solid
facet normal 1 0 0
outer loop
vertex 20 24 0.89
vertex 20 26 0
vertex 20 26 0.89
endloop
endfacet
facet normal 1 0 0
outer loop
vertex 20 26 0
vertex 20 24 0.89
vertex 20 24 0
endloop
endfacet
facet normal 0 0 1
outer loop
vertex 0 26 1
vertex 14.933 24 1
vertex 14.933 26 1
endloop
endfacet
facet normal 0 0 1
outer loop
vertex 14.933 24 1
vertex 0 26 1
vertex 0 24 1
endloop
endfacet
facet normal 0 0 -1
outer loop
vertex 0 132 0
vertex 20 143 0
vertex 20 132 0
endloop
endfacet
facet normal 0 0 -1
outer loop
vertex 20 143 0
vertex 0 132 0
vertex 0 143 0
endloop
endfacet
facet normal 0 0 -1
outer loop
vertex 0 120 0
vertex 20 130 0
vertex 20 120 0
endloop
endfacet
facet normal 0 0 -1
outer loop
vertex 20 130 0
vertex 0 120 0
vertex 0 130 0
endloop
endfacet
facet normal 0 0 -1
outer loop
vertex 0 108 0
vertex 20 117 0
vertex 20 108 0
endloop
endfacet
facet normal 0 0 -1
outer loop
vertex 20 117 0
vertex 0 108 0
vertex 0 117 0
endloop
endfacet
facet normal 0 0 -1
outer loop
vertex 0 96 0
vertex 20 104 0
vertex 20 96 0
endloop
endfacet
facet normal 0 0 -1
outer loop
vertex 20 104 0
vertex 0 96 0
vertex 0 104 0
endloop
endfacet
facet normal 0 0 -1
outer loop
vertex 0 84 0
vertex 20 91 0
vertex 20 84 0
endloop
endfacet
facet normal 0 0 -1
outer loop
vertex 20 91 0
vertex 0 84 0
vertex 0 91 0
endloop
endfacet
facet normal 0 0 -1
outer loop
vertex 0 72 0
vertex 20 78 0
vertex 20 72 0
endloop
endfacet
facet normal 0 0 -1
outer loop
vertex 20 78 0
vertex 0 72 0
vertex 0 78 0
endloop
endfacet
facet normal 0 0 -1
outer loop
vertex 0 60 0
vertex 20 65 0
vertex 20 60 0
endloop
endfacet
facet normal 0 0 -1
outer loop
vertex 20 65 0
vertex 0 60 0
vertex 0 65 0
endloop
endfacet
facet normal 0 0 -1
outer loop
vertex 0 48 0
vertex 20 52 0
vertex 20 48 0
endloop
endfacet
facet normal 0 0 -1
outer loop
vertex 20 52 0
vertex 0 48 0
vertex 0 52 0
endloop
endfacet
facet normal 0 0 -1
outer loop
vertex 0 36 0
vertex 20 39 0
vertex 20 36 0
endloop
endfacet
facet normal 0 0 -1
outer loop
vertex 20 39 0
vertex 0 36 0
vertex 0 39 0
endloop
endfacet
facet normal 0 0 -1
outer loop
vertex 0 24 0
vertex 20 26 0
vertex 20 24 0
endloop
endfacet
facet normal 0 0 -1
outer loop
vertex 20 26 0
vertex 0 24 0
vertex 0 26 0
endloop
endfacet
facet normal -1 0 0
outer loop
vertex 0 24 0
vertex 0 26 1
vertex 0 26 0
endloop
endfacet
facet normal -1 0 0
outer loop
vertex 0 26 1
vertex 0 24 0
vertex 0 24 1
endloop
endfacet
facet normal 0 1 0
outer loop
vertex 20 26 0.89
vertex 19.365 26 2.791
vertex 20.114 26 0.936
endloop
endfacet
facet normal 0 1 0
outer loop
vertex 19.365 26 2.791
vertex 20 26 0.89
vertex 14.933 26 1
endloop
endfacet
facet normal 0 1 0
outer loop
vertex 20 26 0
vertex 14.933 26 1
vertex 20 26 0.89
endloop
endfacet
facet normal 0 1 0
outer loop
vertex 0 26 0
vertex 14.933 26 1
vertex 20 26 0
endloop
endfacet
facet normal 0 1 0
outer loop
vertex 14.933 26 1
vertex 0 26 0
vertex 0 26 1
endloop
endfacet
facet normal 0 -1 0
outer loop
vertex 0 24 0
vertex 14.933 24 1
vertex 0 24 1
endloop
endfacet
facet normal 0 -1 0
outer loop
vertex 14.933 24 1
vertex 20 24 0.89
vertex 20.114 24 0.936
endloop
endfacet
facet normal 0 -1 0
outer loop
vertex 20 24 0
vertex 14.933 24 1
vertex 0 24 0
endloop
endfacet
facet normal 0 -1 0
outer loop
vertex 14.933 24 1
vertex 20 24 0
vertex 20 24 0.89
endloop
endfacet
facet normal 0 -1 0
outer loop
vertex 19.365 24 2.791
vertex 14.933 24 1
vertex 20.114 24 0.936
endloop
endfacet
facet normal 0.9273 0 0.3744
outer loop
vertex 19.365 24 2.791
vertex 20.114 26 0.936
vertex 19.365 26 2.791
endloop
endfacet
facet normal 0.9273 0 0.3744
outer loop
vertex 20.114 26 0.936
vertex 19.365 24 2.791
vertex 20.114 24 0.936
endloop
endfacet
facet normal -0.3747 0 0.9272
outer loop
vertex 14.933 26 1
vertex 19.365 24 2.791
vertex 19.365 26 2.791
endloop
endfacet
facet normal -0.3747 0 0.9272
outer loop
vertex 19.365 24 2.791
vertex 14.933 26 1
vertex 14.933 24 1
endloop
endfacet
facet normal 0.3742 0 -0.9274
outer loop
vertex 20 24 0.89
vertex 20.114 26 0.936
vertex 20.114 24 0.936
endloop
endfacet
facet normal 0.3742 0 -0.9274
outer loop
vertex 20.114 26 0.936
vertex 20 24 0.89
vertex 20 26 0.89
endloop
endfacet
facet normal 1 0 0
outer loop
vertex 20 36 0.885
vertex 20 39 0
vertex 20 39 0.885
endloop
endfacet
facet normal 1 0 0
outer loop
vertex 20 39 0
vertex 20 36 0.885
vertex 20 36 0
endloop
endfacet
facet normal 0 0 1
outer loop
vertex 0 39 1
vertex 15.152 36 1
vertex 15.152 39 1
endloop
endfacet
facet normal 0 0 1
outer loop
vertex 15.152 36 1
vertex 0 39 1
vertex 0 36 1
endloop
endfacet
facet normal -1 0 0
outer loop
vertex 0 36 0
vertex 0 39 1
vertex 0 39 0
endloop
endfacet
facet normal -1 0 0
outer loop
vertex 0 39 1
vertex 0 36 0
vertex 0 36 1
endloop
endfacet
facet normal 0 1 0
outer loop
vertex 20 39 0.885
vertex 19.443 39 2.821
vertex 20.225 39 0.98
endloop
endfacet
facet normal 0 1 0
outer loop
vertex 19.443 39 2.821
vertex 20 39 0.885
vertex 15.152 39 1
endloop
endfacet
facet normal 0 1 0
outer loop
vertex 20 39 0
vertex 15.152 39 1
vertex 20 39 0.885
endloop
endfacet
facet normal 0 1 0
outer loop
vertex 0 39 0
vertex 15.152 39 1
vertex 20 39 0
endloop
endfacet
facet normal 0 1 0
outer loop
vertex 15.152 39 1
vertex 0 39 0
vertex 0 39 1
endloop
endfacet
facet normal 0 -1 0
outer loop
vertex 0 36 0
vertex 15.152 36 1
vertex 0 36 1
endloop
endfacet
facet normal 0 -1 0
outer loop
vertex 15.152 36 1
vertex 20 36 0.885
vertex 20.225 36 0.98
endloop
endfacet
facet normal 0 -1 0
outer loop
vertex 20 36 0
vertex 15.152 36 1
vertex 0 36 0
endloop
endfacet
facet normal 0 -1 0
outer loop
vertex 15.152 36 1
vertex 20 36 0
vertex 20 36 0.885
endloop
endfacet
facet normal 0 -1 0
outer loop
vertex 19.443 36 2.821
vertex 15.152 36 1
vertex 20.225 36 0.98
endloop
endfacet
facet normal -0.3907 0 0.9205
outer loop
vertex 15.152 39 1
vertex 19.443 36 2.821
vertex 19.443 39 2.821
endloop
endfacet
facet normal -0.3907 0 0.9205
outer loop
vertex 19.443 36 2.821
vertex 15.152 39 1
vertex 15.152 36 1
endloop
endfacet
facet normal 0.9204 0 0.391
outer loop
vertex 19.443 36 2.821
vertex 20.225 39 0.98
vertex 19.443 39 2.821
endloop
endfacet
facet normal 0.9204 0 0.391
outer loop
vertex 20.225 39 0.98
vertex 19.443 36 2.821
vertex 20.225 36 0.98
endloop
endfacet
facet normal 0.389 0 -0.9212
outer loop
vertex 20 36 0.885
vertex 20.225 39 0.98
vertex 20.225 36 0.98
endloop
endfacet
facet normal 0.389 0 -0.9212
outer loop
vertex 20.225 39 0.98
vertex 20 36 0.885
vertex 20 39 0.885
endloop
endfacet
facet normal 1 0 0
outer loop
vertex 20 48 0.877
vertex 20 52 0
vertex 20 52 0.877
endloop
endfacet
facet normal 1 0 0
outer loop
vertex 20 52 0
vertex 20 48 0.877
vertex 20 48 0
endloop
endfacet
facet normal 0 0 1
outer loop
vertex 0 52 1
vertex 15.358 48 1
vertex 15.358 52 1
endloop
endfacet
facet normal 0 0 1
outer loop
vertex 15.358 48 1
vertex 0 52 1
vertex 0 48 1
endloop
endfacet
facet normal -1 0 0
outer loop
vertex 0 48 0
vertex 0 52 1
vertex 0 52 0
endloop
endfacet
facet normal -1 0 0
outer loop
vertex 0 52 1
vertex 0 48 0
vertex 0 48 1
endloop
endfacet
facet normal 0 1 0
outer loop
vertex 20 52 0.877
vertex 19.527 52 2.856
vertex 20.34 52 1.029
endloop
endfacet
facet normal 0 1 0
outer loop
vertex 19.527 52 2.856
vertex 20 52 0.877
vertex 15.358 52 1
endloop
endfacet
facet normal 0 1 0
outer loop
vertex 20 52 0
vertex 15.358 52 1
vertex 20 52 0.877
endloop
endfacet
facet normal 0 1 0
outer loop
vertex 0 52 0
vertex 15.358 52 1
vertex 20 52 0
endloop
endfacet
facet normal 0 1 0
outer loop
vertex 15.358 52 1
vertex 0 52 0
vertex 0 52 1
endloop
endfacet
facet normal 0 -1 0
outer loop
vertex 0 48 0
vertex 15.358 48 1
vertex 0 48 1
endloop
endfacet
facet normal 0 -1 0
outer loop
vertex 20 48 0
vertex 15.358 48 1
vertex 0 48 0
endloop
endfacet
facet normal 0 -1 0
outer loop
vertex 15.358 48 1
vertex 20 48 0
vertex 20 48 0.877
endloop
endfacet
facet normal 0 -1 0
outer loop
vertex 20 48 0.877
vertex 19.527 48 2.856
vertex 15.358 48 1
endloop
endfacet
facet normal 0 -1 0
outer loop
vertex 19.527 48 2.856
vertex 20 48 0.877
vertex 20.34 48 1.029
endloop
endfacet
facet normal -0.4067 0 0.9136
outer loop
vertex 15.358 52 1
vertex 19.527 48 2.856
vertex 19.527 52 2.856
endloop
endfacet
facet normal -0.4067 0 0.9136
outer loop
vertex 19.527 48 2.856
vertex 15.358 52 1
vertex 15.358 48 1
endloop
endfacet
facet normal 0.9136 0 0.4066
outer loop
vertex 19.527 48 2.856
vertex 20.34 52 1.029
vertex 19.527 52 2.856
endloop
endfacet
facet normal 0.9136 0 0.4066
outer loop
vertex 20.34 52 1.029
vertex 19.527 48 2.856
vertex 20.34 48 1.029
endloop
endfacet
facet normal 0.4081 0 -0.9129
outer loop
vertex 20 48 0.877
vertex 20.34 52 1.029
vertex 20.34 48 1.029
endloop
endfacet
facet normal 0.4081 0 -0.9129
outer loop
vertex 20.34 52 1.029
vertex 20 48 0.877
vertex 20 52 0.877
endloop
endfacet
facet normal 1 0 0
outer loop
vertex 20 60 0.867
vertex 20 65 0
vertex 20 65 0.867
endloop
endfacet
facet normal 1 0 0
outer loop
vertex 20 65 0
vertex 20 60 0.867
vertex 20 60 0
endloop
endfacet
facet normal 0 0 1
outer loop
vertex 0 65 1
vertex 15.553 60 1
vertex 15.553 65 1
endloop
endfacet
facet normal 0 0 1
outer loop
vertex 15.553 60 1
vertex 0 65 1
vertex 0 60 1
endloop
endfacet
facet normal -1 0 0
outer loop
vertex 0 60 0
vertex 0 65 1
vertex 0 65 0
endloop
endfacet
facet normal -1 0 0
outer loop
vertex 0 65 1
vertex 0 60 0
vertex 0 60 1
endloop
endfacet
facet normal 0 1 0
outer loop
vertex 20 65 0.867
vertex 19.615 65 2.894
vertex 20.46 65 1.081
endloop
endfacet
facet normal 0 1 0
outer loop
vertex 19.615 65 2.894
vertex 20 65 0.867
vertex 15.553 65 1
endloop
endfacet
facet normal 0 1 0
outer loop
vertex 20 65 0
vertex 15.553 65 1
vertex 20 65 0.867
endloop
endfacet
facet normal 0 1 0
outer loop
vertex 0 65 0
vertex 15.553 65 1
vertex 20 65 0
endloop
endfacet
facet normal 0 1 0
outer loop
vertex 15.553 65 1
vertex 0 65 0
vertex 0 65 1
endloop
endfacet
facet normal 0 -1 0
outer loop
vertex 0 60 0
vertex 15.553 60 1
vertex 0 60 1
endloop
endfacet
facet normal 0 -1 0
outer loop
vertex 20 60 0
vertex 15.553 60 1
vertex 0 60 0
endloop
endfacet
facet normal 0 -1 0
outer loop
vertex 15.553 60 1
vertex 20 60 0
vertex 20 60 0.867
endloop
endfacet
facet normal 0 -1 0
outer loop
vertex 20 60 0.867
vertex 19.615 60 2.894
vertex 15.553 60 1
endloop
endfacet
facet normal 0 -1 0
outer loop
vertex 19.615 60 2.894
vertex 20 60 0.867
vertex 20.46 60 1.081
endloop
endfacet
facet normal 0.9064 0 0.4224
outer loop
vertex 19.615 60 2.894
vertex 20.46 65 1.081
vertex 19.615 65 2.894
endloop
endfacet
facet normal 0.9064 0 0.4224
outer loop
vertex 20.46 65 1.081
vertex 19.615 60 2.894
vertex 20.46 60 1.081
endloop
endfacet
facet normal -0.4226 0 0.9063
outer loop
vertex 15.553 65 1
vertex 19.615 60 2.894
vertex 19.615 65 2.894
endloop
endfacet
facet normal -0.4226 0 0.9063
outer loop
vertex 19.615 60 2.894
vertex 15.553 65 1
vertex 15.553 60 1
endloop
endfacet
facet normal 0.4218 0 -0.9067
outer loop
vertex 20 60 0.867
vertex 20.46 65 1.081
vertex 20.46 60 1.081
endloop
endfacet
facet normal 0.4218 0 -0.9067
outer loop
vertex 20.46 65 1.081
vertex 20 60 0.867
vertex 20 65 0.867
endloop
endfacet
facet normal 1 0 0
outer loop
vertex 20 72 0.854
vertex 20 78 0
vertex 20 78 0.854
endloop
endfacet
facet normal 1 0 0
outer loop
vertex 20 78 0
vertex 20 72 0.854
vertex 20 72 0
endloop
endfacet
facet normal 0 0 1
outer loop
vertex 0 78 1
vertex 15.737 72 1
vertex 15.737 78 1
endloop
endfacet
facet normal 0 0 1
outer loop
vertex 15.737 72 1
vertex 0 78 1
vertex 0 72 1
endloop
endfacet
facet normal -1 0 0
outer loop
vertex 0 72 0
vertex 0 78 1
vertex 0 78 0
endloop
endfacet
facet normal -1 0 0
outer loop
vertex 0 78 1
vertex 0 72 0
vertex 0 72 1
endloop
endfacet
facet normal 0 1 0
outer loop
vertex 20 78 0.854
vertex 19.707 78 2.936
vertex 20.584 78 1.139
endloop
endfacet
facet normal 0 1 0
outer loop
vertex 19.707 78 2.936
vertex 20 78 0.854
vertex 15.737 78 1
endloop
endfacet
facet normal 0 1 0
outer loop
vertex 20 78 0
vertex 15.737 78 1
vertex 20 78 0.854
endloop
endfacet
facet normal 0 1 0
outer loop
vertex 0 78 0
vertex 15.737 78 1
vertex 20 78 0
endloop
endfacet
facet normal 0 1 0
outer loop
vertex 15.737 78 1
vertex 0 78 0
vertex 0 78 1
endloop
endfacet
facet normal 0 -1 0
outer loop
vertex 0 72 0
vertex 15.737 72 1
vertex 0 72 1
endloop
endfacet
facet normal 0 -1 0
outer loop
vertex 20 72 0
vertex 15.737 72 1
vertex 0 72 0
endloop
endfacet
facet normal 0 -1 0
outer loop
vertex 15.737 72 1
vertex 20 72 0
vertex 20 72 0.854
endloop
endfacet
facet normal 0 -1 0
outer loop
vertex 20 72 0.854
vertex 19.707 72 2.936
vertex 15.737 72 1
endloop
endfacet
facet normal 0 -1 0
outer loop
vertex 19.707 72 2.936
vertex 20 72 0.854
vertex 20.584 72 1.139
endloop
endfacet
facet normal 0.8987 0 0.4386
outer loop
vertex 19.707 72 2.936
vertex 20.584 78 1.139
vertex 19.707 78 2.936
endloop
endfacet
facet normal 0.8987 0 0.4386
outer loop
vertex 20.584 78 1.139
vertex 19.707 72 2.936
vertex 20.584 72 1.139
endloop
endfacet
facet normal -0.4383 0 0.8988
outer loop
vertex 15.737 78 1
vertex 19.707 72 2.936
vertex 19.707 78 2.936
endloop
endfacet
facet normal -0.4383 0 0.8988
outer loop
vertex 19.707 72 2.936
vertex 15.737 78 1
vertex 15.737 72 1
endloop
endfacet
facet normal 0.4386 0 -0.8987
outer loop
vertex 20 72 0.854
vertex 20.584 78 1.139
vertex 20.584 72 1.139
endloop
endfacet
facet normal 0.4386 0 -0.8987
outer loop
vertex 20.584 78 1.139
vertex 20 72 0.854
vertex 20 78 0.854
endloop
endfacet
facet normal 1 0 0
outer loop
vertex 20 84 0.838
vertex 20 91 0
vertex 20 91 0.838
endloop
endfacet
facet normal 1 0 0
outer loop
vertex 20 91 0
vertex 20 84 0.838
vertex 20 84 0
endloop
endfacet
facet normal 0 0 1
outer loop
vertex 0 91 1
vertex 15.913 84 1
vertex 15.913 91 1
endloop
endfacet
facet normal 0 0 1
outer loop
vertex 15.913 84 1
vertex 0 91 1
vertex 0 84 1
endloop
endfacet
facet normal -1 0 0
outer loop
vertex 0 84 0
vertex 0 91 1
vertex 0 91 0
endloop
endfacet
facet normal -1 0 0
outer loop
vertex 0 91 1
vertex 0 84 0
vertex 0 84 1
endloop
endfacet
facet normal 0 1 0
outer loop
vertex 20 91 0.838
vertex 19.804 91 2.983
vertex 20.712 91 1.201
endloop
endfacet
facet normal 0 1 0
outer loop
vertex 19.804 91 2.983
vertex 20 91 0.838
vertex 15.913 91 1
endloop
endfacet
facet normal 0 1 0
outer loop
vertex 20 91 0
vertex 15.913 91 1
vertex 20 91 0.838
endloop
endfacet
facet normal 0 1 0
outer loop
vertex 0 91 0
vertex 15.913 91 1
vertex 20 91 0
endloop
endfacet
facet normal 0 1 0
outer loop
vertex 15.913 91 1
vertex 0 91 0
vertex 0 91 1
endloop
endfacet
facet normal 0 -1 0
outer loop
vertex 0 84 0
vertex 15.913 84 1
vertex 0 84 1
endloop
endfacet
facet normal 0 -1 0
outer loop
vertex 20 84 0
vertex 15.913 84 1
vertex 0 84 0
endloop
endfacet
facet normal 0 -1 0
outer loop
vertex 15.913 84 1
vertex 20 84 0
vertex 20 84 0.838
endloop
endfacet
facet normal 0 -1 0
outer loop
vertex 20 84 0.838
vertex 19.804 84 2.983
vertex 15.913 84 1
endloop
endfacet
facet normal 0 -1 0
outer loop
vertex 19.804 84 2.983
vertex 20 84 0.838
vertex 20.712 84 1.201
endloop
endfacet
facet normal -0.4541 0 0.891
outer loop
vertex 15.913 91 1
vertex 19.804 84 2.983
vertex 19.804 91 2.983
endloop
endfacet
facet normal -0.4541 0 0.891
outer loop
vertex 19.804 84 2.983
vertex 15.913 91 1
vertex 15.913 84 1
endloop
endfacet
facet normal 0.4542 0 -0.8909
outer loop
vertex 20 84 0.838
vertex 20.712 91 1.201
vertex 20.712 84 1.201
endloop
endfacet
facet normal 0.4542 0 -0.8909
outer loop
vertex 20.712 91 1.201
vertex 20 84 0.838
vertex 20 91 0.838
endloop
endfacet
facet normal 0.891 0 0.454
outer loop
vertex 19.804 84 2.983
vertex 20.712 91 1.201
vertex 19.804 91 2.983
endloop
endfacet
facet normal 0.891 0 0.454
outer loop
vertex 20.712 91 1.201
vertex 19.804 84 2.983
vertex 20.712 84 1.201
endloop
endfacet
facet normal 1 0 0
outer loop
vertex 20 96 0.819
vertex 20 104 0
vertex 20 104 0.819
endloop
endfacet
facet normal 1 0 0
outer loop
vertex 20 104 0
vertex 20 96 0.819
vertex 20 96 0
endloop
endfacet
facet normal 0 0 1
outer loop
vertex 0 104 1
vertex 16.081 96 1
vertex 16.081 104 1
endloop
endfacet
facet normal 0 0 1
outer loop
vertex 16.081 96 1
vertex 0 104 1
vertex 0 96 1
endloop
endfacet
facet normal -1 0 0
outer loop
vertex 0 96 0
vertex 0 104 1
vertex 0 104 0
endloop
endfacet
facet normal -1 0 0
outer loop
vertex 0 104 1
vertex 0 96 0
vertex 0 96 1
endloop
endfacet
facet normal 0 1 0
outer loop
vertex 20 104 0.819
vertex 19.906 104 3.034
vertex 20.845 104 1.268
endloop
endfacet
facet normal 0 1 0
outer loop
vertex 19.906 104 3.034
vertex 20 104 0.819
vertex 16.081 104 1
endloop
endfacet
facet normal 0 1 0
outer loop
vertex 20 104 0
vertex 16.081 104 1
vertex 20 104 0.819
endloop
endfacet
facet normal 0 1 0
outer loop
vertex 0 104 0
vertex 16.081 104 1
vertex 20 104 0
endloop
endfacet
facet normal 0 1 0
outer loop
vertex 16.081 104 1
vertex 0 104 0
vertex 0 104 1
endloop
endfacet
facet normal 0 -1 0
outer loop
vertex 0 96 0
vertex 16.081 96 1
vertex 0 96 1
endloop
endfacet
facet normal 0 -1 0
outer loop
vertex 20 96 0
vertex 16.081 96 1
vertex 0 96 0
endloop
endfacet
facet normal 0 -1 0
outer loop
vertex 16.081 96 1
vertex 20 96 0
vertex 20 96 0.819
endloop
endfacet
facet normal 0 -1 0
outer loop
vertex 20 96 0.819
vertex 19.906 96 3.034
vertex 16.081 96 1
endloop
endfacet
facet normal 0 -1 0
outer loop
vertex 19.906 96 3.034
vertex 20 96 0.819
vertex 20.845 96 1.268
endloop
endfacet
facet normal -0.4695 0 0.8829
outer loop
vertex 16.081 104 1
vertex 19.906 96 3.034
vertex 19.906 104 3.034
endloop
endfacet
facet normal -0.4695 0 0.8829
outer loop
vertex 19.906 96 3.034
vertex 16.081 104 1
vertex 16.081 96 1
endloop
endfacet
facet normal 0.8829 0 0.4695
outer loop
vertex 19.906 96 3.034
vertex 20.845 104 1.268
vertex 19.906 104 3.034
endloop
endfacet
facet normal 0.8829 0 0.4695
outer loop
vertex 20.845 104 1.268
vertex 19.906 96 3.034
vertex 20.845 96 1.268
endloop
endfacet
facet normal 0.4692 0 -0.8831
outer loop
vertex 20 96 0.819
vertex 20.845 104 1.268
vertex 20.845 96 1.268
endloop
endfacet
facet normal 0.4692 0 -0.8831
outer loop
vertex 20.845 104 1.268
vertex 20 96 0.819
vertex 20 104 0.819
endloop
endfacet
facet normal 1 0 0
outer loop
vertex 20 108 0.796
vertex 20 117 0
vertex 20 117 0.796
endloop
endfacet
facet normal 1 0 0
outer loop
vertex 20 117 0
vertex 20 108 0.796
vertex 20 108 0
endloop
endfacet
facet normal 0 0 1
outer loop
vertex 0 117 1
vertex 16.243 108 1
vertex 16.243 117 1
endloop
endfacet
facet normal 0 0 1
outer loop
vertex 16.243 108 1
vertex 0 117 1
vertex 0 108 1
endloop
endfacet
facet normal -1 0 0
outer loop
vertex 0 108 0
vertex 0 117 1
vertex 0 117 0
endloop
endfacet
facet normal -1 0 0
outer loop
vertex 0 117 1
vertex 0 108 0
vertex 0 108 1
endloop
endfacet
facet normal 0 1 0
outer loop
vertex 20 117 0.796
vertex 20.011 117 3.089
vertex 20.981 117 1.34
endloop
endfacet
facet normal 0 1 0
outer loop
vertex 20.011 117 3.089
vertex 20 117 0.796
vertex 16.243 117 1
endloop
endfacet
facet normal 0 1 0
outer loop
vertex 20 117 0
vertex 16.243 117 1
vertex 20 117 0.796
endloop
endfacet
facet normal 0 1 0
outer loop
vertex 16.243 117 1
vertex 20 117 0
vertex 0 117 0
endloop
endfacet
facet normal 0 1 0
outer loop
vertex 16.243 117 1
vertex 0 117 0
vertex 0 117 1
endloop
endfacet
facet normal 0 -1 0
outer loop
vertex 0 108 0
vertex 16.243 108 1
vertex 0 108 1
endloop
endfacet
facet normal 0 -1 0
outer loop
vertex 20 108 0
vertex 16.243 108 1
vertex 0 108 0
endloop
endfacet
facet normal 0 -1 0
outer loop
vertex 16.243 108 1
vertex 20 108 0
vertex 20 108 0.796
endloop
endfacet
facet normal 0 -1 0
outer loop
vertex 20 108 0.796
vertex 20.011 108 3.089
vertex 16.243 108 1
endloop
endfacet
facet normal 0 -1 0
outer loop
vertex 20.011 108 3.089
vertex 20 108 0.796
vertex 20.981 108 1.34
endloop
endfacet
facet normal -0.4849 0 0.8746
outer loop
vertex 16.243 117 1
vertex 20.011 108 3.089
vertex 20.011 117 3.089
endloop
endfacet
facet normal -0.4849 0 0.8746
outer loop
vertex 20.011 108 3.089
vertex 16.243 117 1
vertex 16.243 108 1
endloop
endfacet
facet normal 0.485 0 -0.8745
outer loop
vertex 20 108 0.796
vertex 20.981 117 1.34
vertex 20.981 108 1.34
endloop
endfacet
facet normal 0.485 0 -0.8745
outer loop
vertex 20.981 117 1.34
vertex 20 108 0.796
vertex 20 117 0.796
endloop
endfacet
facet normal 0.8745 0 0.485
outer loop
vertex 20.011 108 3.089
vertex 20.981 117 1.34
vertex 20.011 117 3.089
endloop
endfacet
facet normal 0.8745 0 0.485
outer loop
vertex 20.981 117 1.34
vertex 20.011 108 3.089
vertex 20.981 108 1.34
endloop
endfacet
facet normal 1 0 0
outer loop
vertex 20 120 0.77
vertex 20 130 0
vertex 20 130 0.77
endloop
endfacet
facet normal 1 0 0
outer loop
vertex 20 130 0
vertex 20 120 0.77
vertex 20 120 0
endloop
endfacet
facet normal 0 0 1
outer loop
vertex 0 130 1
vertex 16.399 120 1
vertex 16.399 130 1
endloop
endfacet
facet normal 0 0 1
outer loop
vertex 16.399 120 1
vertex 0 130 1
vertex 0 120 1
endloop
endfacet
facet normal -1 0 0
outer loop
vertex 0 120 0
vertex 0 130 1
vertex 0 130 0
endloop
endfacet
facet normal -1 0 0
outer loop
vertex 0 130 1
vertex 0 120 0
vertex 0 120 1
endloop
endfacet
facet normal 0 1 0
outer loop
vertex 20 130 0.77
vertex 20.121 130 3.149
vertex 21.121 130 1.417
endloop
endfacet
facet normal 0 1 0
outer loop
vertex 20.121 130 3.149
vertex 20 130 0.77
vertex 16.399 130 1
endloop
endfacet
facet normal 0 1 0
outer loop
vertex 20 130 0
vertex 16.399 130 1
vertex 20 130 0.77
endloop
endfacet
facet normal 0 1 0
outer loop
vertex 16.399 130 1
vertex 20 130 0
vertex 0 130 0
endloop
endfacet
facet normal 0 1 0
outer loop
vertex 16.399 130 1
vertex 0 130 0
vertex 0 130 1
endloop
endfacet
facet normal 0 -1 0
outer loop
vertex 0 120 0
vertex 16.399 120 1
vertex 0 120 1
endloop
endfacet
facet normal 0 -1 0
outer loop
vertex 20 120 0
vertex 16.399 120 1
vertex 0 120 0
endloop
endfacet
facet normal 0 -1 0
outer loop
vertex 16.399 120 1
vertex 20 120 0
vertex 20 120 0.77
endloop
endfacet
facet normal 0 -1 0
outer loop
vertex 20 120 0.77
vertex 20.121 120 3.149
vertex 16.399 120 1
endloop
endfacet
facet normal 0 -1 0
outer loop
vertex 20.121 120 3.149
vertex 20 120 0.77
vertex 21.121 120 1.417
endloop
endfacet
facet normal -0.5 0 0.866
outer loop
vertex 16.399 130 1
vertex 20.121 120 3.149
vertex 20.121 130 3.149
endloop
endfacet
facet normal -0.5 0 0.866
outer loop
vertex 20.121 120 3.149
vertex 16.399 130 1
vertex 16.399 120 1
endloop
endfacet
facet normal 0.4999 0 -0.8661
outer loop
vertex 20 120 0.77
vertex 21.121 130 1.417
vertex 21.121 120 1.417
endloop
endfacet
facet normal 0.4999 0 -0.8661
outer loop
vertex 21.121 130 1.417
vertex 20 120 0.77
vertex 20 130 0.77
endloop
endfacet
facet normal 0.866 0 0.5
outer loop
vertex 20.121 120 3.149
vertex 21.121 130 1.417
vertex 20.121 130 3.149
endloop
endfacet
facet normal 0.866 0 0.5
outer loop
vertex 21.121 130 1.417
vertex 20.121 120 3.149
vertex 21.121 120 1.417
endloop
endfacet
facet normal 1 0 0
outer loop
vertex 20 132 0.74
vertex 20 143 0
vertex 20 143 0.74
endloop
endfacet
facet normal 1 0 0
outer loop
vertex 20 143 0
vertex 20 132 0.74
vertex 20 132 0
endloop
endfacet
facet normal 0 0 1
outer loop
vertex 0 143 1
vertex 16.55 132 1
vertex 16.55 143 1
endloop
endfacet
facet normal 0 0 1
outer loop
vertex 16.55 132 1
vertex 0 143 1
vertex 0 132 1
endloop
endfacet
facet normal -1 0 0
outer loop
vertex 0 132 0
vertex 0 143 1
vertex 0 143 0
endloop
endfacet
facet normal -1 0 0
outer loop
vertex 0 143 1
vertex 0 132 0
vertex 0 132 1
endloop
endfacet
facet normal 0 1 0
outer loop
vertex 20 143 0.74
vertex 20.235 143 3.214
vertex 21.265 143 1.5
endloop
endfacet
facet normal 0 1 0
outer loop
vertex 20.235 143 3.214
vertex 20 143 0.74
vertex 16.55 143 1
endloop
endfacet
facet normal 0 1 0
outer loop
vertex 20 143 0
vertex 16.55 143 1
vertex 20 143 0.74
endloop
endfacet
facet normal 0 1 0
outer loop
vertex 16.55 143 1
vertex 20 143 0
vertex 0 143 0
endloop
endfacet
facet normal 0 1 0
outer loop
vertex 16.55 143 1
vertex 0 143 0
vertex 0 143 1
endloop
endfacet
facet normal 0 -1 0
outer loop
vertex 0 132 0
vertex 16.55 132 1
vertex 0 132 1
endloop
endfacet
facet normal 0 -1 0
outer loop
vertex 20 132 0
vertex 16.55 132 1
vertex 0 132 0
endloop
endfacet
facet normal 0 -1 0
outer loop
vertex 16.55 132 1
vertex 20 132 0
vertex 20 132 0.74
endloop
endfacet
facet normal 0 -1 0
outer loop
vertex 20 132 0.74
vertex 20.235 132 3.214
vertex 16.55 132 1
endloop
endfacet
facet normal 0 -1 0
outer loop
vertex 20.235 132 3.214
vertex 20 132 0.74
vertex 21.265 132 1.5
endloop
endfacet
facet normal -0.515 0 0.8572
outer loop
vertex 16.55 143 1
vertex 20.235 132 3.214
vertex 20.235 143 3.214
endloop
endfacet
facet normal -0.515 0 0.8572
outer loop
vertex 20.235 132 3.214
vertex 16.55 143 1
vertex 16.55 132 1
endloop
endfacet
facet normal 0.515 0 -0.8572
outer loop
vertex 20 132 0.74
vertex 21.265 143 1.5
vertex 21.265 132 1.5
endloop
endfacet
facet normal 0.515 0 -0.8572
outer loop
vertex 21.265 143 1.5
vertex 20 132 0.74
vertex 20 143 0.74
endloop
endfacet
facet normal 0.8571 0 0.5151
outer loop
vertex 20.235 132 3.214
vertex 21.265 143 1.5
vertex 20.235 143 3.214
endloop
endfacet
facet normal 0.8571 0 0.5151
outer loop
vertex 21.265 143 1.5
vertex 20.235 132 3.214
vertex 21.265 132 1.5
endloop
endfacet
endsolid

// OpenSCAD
difference(){
	for(n = [2:1:11]){
		width = n;
		length = 20;
		translate([0, 12*n, 0]){
			cube([length, width, 1]);
			rotate([0, -(n+20), 0])
				translate([12, 0, -6-n/3])
					cube([7, width, 2]);
		}
	}
	#translate([0, 0, -5])
		cube([30, 150, 5]);
}
